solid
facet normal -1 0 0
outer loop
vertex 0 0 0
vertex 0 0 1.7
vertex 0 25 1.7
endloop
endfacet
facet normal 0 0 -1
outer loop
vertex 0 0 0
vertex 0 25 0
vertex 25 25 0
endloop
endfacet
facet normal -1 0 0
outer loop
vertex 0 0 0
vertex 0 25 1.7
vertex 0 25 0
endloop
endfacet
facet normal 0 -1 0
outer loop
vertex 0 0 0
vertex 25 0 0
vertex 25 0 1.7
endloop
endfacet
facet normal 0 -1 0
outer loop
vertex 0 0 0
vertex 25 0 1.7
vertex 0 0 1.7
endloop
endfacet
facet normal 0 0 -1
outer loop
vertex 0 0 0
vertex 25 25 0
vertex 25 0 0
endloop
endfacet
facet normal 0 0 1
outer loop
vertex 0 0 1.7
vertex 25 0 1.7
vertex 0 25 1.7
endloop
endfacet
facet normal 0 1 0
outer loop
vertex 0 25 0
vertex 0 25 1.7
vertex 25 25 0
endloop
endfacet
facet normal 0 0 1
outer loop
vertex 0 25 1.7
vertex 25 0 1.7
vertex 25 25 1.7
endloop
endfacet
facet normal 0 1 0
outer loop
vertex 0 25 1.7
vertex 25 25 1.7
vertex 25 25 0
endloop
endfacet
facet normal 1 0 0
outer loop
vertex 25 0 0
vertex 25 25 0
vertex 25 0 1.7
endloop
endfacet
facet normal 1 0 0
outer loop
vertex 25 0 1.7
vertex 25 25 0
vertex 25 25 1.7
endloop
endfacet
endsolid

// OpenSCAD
/* Warning, this is a very basic generator with a lot of approximation 
input data : [BBGA, HYC, 25x25x1.70mm, 1369, , A, C04-25662A]
generated by com.zoubworld.electronics.cad.model3d.Basic
Date : Sun Feb 15 10:50:49 CET 2026
*/

//body
color("black")
translate([0,0,0])
cube([25.0,25.0,1.7], center=false);
